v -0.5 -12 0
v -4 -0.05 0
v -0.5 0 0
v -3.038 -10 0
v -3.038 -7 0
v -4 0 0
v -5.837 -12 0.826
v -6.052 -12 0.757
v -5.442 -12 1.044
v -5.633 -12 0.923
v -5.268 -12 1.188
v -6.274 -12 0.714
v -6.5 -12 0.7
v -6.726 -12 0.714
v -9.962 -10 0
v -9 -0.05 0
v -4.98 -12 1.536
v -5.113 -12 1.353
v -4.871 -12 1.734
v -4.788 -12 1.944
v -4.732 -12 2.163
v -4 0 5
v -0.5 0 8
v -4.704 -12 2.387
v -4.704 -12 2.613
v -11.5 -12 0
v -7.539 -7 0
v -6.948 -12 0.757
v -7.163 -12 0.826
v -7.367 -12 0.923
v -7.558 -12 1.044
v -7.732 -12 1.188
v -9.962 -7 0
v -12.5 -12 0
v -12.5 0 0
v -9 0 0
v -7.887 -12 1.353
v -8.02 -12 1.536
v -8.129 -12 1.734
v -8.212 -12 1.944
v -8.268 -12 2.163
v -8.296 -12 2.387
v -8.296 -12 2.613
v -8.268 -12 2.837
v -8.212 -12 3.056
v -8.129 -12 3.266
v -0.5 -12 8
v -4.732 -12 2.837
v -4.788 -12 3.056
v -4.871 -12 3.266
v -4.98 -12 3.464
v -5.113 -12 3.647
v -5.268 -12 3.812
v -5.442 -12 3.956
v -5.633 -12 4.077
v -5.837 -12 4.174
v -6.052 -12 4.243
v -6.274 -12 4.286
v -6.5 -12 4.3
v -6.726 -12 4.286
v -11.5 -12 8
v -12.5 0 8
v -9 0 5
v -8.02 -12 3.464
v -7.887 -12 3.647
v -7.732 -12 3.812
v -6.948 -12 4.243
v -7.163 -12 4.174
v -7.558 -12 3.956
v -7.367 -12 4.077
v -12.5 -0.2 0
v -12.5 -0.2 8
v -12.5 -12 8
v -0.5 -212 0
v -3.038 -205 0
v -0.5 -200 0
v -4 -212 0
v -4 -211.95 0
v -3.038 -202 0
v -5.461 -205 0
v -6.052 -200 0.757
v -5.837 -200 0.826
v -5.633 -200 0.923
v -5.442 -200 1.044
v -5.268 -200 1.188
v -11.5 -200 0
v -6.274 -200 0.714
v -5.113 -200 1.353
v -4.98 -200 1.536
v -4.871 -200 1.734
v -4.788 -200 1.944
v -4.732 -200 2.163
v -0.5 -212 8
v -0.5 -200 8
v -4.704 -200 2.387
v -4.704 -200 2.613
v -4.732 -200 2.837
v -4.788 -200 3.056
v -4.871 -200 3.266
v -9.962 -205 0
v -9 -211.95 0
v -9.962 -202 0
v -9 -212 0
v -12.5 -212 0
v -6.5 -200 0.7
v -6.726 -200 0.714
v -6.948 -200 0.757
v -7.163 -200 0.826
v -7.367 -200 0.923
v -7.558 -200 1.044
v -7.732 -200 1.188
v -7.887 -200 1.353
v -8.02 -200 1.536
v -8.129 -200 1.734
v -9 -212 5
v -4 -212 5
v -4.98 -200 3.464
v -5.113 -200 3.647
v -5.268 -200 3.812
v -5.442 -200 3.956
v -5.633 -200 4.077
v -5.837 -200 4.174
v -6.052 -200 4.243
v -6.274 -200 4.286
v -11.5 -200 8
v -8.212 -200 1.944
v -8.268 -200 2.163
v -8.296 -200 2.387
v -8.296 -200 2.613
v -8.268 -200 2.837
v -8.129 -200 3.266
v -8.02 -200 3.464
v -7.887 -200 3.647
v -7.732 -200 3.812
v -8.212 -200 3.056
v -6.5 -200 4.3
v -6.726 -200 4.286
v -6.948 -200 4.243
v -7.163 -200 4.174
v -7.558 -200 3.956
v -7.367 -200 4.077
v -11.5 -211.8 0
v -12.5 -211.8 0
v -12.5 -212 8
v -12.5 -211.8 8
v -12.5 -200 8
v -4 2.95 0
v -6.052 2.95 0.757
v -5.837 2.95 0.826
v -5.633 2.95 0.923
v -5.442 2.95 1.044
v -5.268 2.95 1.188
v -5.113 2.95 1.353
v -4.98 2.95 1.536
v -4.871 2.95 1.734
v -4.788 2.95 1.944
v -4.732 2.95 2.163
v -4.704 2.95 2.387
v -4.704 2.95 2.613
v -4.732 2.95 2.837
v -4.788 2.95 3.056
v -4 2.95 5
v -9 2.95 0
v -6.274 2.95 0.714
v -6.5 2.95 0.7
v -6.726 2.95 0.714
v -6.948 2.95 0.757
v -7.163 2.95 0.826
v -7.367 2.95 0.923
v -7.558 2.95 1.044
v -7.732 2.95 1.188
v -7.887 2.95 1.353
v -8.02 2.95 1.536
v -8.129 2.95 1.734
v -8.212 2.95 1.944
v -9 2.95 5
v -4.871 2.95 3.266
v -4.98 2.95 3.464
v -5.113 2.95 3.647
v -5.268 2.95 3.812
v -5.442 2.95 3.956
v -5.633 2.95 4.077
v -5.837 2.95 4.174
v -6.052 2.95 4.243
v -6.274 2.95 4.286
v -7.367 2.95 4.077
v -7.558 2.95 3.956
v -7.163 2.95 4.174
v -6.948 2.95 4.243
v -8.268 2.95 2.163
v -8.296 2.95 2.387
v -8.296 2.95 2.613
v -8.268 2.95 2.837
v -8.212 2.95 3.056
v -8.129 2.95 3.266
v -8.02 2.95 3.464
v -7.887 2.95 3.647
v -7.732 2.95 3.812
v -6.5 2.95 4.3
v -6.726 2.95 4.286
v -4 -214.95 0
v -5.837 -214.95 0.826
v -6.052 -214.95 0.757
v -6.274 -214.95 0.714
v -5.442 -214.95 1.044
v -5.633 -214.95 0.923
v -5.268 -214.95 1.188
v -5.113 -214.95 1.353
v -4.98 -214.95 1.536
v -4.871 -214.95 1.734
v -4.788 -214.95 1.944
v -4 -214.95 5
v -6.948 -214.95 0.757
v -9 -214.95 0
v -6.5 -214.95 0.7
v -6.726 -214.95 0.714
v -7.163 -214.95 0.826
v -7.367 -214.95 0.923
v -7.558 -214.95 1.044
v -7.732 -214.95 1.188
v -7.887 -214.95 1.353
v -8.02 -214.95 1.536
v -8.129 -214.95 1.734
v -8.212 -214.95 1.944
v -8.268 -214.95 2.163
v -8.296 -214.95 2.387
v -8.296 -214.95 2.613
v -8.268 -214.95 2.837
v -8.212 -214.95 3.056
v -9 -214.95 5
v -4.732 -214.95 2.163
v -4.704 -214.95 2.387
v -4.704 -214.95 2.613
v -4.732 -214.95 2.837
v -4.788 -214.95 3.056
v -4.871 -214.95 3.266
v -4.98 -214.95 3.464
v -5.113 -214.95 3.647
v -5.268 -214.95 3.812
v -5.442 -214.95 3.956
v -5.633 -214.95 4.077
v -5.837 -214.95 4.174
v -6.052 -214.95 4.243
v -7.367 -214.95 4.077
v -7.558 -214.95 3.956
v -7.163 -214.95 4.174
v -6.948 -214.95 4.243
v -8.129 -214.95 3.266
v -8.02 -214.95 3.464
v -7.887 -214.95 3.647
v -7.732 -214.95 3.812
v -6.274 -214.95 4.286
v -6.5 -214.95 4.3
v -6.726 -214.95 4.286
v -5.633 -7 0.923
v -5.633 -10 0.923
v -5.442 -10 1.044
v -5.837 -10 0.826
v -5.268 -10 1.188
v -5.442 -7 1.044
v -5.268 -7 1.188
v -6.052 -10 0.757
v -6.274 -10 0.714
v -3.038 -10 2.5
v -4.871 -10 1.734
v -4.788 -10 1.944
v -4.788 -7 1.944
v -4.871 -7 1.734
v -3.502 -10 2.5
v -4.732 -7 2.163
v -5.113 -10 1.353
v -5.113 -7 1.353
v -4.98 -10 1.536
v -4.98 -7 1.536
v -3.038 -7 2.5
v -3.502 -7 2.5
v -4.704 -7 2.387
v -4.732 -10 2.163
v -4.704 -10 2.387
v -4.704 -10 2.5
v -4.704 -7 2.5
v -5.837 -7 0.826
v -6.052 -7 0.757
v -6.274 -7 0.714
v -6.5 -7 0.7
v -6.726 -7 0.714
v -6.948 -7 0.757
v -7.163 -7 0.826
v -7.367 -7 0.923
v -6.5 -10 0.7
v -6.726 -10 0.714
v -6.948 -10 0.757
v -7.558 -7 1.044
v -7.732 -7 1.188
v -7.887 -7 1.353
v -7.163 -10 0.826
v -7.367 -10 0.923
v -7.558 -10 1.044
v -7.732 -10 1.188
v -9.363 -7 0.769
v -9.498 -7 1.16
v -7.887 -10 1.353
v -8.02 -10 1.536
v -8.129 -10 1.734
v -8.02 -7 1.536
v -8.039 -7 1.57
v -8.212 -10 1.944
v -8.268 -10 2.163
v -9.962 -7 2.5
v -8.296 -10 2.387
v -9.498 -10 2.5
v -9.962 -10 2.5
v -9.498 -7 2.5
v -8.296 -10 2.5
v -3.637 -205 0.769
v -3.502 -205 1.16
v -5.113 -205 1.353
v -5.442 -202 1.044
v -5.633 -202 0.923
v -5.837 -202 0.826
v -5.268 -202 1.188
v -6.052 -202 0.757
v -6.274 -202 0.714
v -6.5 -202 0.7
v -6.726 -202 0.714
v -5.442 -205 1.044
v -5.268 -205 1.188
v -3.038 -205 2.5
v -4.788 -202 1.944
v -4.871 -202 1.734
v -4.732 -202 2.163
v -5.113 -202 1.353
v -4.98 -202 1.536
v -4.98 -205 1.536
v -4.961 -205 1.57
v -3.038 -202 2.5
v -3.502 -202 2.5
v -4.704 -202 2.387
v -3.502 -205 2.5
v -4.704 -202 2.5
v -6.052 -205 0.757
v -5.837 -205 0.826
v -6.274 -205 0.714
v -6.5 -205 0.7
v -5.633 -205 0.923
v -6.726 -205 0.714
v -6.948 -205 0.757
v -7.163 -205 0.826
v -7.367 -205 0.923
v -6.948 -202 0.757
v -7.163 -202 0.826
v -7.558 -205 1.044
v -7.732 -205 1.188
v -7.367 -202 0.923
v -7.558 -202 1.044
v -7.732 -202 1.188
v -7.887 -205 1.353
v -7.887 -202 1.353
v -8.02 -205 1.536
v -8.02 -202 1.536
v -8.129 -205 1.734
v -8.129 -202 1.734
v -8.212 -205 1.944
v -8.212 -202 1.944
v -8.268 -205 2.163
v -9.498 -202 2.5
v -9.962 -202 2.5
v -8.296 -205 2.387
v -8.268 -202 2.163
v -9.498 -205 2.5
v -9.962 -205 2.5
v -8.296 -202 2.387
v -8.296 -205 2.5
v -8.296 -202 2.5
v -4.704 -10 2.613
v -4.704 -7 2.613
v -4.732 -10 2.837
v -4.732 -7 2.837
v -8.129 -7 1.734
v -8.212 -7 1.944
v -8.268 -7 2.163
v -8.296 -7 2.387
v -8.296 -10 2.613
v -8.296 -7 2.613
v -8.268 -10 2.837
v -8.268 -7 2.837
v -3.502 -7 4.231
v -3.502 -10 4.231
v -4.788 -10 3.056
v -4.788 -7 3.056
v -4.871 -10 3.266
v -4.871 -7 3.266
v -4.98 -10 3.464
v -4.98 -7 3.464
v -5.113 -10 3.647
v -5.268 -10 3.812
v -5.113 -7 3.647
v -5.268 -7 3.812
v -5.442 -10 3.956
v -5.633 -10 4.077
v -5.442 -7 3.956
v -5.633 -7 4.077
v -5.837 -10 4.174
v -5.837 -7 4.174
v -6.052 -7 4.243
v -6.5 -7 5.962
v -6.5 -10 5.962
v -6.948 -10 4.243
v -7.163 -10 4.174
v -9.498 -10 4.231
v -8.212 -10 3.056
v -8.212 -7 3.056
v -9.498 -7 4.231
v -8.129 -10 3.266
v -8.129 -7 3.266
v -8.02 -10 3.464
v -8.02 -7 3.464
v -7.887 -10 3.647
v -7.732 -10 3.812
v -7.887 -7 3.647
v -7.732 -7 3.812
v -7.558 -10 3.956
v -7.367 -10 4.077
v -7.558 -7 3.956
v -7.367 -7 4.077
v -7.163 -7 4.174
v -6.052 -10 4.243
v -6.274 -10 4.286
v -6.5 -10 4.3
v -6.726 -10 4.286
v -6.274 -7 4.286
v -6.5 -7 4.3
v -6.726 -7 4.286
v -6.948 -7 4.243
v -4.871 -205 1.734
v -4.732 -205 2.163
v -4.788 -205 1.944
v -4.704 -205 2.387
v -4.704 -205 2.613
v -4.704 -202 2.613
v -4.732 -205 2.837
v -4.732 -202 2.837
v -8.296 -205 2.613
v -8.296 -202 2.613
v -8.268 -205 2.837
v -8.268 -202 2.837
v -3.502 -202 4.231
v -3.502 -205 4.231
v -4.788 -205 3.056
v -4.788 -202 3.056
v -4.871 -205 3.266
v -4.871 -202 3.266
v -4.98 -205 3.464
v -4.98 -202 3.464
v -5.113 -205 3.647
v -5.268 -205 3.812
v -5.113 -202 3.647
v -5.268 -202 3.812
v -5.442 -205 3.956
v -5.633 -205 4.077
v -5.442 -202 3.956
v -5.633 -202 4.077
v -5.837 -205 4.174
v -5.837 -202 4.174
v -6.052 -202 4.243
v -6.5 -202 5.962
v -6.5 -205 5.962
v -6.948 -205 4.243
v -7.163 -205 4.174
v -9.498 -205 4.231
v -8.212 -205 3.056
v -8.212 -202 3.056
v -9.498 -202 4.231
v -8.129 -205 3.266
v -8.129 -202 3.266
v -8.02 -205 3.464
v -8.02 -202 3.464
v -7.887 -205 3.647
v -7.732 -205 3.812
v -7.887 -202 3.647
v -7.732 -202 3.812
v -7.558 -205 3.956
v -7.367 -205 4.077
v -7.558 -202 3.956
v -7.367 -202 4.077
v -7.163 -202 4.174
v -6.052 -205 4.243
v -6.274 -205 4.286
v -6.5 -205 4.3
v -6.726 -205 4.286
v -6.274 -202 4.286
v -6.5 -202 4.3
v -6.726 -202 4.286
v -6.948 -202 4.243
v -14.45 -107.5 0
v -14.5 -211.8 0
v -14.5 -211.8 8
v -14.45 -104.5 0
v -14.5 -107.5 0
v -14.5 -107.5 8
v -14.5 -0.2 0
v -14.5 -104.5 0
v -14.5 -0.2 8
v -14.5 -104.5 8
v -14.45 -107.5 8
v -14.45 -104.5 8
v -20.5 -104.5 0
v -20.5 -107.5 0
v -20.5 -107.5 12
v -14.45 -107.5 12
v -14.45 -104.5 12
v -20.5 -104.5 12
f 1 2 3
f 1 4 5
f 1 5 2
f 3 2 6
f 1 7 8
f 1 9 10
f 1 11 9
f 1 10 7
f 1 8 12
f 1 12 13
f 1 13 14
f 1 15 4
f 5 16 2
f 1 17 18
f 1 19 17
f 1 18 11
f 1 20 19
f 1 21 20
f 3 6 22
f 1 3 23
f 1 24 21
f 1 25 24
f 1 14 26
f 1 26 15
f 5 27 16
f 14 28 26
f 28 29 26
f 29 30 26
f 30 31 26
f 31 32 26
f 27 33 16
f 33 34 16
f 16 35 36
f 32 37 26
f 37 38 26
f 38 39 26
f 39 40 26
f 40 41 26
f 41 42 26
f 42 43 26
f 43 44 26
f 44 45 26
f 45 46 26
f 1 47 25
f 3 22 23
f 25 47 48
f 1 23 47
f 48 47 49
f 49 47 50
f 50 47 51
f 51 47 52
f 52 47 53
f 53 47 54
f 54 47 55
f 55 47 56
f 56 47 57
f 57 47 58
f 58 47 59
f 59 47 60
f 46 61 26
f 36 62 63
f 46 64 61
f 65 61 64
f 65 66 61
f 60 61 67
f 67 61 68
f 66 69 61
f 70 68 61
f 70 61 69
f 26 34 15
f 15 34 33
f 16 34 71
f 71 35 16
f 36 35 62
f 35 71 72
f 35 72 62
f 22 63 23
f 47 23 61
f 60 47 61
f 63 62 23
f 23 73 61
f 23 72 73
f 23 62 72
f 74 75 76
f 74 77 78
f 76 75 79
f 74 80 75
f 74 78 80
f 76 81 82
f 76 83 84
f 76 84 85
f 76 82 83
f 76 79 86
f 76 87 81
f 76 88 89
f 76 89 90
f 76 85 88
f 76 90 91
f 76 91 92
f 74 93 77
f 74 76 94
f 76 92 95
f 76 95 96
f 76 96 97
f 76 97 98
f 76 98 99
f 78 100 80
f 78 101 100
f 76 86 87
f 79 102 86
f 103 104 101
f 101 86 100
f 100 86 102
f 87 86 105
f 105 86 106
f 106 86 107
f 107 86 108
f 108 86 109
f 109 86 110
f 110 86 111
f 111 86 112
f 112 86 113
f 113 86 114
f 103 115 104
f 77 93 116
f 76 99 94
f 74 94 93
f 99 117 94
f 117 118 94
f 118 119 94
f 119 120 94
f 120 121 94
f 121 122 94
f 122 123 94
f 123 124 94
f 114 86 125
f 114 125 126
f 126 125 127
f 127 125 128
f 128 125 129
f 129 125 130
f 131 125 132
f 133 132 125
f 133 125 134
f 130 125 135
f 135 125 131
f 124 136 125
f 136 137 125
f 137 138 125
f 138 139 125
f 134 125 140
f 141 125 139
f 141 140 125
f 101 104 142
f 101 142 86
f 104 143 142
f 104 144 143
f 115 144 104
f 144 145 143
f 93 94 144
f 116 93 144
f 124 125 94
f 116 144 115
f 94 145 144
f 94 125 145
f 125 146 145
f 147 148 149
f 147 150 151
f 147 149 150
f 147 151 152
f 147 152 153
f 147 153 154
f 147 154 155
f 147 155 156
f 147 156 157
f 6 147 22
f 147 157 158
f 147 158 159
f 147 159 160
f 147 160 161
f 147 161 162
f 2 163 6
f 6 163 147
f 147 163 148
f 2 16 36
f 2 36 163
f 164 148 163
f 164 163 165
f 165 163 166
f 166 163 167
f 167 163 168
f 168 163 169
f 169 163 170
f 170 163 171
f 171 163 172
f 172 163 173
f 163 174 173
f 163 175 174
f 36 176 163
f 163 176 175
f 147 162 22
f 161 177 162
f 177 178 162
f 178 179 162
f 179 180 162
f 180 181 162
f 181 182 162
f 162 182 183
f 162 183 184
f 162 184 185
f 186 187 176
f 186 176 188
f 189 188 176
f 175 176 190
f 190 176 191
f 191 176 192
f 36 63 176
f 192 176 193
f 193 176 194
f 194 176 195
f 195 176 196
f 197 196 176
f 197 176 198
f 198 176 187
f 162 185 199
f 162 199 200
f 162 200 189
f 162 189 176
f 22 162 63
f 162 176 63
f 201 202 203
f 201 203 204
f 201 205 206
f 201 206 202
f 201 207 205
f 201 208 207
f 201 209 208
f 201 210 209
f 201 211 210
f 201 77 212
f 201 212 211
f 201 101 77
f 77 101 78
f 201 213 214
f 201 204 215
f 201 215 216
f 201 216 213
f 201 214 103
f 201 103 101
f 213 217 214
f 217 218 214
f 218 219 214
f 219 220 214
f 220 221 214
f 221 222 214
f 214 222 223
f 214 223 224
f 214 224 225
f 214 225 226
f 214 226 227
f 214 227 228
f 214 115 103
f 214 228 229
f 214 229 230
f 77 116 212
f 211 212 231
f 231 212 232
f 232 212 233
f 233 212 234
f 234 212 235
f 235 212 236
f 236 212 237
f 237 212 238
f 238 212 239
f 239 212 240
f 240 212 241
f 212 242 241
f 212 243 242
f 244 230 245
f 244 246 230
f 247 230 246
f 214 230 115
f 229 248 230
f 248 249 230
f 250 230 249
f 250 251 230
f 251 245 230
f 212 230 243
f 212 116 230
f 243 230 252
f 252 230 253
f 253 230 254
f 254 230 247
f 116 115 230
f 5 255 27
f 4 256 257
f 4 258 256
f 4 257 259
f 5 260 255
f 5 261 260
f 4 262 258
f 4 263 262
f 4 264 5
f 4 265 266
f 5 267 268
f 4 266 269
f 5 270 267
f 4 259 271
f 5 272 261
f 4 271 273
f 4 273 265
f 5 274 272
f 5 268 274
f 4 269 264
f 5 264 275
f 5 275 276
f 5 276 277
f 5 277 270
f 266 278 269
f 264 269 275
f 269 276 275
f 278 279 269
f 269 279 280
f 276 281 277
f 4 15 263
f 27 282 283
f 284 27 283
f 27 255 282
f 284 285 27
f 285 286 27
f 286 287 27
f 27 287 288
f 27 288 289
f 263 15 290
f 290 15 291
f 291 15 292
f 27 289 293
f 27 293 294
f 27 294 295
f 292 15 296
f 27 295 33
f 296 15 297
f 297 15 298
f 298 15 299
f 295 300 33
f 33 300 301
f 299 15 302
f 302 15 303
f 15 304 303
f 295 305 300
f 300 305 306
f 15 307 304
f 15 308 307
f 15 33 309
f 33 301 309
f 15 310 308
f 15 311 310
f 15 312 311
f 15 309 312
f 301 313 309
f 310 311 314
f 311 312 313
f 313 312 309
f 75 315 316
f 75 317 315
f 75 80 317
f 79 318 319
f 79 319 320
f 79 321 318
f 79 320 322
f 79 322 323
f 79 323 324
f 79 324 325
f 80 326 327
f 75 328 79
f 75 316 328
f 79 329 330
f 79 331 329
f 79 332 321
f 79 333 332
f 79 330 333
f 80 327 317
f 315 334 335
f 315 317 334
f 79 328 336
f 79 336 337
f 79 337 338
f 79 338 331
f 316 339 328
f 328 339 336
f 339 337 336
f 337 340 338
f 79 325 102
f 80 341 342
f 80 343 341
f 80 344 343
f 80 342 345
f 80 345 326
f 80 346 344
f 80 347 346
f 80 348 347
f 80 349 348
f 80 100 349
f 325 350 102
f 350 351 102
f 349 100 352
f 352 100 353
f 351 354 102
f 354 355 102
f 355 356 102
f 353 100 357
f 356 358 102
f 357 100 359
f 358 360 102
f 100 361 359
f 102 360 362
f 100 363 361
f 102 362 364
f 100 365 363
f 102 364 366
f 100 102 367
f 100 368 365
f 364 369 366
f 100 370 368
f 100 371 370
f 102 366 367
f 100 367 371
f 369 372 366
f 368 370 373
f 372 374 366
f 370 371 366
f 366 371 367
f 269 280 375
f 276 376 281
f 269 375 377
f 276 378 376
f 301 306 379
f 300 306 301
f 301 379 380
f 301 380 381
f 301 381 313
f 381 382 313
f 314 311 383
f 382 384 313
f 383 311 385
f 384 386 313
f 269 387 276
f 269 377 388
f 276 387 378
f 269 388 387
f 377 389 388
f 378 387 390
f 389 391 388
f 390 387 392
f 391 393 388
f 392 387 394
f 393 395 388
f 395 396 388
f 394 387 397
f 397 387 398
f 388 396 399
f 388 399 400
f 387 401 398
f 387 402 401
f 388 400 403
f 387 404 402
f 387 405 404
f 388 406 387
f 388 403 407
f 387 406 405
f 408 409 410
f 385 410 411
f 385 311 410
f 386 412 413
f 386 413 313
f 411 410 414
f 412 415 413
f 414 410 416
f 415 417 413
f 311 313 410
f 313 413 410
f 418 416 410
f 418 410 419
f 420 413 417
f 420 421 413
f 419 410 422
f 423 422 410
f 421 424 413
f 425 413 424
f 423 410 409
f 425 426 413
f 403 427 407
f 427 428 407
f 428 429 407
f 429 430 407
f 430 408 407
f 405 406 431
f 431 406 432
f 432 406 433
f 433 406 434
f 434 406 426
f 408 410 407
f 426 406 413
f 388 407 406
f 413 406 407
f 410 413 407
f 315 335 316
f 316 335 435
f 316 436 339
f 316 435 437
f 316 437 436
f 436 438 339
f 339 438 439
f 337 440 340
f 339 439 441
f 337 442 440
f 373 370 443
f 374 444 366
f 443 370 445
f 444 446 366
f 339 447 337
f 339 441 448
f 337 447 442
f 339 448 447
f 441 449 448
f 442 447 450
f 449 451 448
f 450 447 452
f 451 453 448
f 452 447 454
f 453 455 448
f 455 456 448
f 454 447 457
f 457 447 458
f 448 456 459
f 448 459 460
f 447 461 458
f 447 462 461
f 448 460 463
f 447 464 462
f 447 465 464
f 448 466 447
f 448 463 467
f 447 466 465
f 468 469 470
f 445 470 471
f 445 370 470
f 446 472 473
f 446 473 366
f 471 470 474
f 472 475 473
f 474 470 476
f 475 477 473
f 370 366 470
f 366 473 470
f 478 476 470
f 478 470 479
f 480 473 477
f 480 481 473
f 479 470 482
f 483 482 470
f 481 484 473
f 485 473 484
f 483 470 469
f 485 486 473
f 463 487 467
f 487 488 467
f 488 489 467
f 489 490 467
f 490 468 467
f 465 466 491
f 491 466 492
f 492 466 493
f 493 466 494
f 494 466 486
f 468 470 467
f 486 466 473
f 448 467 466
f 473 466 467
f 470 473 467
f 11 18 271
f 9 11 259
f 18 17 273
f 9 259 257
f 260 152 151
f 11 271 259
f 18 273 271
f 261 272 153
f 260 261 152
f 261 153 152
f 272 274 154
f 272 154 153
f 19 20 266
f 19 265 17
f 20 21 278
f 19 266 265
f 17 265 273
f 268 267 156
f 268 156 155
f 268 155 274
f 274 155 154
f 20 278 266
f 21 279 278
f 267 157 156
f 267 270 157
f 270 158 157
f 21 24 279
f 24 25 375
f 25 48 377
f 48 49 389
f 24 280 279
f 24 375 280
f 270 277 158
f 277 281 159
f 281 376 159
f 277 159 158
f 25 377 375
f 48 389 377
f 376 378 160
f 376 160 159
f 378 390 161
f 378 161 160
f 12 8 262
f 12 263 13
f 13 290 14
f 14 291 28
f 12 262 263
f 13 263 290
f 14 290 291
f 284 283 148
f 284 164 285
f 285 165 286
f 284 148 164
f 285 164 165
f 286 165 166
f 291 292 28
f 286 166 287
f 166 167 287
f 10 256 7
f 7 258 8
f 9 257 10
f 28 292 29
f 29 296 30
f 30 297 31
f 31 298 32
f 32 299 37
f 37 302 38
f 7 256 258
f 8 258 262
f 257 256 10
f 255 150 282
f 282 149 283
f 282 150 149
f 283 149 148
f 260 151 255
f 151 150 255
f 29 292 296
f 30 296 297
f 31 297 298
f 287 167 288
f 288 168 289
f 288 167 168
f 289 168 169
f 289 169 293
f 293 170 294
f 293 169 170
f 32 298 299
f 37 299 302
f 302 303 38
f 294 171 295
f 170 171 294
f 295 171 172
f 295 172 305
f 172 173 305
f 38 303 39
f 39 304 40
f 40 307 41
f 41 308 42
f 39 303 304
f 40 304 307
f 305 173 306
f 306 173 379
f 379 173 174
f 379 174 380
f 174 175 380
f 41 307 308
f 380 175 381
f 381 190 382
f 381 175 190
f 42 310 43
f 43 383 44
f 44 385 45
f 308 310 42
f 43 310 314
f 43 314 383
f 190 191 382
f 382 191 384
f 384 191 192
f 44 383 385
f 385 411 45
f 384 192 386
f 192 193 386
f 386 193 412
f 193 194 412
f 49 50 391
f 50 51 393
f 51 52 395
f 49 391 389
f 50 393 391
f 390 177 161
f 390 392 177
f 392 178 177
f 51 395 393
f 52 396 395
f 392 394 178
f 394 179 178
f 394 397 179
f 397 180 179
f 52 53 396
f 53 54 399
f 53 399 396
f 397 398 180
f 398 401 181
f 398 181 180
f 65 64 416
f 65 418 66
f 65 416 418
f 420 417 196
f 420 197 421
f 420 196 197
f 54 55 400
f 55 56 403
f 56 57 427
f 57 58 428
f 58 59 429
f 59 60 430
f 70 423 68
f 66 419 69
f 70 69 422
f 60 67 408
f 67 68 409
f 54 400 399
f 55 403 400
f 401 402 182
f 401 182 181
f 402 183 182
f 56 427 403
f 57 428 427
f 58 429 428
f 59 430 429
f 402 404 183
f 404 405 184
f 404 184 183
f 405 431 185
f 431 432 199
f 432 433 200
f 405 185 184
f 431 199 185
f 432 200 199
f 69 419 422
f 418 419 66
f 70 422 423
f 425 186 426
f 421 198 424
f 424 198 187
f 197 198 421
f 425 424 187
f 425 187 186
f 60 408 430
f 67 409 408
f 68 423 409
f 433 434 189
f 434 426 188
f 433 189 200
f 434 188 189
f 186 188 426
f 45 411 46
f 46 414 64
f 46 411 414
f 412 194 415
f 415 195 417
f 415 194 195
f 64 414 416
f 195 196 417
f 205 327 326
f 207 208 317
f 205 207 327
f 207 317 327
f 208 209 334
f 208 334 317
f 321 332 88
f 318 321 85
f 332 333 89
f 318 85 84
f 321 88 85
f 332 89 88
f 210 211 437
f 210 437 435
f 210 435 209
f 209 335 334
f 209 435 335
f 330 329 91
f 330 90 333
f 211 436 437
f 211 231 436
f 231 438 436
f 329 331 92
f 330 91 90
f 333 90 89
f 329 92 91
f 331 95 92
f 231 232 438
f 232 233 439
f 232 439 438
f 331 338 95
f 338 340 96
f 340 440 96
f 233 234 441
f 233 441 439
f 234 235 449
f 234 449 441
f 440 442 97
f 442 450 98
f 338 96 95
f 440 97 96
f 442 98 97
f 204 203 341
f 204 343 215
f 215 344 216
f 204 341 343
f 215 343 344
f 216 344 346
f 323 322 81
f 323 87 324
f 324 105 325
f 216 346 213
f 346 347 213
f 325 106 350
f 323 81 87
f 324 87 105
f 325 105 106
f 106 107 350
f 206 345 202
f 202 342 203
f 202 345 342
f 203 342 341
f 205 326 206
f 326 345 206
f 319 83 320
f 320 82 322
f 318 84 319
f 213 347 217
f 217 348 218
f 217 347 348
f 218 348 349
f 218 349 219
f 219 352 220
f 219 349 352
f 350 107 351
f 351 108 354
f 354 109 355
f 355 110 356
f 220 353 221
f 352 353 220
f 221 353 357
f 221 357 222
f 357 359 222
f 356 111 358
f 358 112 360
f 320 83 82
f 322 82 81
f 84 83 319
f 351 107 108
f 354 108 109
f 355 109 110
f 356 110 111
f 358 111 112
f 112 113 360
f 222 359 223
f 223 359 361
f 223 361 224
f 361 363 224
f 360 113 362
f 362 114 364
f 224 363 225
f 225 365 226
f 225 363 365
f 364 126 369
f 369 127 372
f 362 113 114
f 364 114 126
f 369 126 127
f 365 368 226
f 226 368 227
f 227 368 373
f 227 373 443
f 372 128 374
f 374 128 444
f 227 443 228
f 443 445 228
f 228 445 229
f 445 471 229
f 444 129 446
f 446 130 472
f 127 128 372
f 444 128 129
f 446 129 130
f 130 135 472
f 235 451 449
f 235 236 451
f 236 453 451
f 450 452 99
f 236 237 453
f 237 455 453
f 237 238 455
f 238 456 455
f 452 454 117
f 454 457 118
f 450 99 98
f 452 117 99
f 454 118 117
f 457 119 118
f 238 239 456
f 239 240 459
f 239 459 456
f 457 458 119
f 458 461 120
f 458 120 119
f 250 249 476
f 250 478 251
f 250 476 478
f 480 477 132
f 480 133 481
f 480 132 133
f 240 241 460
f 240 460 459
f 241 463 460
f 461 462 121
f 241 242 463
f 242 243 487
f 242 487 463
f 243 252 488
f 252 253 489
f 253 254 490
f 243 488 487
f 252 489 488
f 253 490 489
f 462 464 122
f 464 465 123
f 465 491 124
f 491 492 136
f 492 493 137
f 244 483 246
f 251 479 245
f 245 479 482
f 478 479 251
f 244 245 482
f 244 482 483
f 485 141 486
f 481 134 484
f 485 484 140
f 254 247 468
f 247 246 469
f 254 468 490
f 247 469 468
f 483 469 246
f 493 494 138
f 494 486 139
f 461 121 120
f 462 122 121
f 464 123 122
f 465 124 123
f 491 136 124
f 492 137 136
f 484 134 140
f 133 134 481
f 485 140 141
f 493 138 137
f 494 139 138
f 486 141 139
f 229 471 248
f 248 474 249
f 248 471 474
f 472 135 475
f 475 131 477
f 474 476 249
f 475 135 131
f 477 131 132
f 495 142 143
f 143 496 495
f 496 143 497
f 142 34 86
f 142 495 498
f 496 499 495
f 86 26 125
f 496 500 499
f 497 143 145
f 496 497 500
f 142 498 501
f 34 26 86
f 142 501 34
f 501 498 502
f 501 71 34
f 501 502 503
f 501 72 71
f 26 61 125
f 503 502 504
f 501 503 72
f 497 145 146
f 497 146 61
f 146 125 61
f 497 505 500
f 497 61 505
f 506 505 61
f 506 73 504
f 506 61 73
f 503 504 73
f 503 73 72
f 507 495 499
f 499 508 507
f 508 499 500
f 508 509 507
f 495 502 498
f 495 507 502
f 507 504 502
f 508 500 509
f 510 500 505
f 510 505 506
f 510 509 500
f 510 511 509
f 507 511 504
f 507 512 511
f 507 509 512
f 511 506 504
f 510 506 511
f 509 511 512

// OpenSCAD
$fn = 50;

difference() {
	union() {
		translate(v = [0, 0, 0]) {
			rotate(a = [0, 0, 0]) {
				difference() {
					union() {
						translate(v = [0, 0, 2.5]) {
							rotate(a = [0, -90, 0]) {
								difference() {
									union() {
										translate(v = [0, 0, 0]) {
											rotate(a = [0, 0, 0]) {
												difference() {
													union() {
														translate(v = [-2.5, -12.0, 0.5]) {
															cube(size = [8.0, 12.0, 12.0]);
														}
														translate(v = [-2.5, -0.05, 4.0]) {
															cube(size = [5.0, 3.0, 5.0]);
														}
													}
													union() {
														translate(v = [0, -7.0, 6.5]) {
															rotate(a = [90, 0, 0]) {
																difference() {
																	union() {
																		translate(v = [-20.0, -3.4619999999999997, 0]) {
																			cube(size = [20, 6.9239999999999995, 3]);
																		}
																		linear_extrude(height = 3) {
																			polygon(points = [[3.4619999999999997, 0.0], [1.7310000000000003, 2.9981799479017264], [-1.7309999999999992, 2.9981799479017264], [-3.4619999999999997, 4.2397272186481365e-16], [-1.7310000000000014, -2.998179947901726], [1.7309999999999977, -2.9981799479017277]]);
																		}
																	}
																	union();
																}
															}
														}
														translate(v = [0, 3.0500000000000003, 6.5]) {
															rotate(a = [90, 0, 0]) {
																cylinder(h = 22.95, r = 1.8);
															}
														}
													}
												}
											}
										}
										translate(v = [0, -212.0, 13.0]) {
											rotate(a = [180, 0, 0]) {
												difference() {
													union() {
														translate(v = [-2.5, -12.0, 0.5]) {
															cube(size = [8.0, 12.0, 12.0]);
														}
														translate(v = [-2.5, -0.05, 4.0]) {
															cube(size = [5.0, 3.0, 5.0]);
														}
													}
													union() {
														translate(v = [0, -7.0, 6.5]) {
															rotate(a = [90, 0, 0]) {
																difference() {
																	union() {
																		translate(v = [-20.0, -3.4619999999999997, 0]) {
																			cube(size = [20, 6.9239999999999995, 3]);
																		}
																		linear_extrude(height = 3) {
																			polygon(points = [[3.4619999999999997, 0.0], [1.7310000000000003, 2.9981799479017264], [-1.7309999999999992, 2.9981799479017264], [-3.4619999999999997, 4.2397272186481365e-16], [-1.7310000000000014, -2.998179947901726], [1.7309999999999977, -2.9981799479017277]]);
																		}
																	}
																	union();
																}
															}
														}
														translate(v = [0, 3.0500000000000003, 6.5]) {
															rotate(a = [90, 0, 0]) {
																cylinder(h = 22.95, r = 1.8);
															}
														}
													}
												}
											}
										}
										translate(v = [-2.5, -211.8, 11.5]) {
											cube(size = [8.0, 211.6, 3.0]);
										}
										translate(v = [-2.5, -107.5, 14.45]) {
											cube(size = [12.0, 3.0, 6.05]);
										}
									}
									union();
								}
							}
						}
					}
					union();
				}
			}
		}
	}
	union();
}
